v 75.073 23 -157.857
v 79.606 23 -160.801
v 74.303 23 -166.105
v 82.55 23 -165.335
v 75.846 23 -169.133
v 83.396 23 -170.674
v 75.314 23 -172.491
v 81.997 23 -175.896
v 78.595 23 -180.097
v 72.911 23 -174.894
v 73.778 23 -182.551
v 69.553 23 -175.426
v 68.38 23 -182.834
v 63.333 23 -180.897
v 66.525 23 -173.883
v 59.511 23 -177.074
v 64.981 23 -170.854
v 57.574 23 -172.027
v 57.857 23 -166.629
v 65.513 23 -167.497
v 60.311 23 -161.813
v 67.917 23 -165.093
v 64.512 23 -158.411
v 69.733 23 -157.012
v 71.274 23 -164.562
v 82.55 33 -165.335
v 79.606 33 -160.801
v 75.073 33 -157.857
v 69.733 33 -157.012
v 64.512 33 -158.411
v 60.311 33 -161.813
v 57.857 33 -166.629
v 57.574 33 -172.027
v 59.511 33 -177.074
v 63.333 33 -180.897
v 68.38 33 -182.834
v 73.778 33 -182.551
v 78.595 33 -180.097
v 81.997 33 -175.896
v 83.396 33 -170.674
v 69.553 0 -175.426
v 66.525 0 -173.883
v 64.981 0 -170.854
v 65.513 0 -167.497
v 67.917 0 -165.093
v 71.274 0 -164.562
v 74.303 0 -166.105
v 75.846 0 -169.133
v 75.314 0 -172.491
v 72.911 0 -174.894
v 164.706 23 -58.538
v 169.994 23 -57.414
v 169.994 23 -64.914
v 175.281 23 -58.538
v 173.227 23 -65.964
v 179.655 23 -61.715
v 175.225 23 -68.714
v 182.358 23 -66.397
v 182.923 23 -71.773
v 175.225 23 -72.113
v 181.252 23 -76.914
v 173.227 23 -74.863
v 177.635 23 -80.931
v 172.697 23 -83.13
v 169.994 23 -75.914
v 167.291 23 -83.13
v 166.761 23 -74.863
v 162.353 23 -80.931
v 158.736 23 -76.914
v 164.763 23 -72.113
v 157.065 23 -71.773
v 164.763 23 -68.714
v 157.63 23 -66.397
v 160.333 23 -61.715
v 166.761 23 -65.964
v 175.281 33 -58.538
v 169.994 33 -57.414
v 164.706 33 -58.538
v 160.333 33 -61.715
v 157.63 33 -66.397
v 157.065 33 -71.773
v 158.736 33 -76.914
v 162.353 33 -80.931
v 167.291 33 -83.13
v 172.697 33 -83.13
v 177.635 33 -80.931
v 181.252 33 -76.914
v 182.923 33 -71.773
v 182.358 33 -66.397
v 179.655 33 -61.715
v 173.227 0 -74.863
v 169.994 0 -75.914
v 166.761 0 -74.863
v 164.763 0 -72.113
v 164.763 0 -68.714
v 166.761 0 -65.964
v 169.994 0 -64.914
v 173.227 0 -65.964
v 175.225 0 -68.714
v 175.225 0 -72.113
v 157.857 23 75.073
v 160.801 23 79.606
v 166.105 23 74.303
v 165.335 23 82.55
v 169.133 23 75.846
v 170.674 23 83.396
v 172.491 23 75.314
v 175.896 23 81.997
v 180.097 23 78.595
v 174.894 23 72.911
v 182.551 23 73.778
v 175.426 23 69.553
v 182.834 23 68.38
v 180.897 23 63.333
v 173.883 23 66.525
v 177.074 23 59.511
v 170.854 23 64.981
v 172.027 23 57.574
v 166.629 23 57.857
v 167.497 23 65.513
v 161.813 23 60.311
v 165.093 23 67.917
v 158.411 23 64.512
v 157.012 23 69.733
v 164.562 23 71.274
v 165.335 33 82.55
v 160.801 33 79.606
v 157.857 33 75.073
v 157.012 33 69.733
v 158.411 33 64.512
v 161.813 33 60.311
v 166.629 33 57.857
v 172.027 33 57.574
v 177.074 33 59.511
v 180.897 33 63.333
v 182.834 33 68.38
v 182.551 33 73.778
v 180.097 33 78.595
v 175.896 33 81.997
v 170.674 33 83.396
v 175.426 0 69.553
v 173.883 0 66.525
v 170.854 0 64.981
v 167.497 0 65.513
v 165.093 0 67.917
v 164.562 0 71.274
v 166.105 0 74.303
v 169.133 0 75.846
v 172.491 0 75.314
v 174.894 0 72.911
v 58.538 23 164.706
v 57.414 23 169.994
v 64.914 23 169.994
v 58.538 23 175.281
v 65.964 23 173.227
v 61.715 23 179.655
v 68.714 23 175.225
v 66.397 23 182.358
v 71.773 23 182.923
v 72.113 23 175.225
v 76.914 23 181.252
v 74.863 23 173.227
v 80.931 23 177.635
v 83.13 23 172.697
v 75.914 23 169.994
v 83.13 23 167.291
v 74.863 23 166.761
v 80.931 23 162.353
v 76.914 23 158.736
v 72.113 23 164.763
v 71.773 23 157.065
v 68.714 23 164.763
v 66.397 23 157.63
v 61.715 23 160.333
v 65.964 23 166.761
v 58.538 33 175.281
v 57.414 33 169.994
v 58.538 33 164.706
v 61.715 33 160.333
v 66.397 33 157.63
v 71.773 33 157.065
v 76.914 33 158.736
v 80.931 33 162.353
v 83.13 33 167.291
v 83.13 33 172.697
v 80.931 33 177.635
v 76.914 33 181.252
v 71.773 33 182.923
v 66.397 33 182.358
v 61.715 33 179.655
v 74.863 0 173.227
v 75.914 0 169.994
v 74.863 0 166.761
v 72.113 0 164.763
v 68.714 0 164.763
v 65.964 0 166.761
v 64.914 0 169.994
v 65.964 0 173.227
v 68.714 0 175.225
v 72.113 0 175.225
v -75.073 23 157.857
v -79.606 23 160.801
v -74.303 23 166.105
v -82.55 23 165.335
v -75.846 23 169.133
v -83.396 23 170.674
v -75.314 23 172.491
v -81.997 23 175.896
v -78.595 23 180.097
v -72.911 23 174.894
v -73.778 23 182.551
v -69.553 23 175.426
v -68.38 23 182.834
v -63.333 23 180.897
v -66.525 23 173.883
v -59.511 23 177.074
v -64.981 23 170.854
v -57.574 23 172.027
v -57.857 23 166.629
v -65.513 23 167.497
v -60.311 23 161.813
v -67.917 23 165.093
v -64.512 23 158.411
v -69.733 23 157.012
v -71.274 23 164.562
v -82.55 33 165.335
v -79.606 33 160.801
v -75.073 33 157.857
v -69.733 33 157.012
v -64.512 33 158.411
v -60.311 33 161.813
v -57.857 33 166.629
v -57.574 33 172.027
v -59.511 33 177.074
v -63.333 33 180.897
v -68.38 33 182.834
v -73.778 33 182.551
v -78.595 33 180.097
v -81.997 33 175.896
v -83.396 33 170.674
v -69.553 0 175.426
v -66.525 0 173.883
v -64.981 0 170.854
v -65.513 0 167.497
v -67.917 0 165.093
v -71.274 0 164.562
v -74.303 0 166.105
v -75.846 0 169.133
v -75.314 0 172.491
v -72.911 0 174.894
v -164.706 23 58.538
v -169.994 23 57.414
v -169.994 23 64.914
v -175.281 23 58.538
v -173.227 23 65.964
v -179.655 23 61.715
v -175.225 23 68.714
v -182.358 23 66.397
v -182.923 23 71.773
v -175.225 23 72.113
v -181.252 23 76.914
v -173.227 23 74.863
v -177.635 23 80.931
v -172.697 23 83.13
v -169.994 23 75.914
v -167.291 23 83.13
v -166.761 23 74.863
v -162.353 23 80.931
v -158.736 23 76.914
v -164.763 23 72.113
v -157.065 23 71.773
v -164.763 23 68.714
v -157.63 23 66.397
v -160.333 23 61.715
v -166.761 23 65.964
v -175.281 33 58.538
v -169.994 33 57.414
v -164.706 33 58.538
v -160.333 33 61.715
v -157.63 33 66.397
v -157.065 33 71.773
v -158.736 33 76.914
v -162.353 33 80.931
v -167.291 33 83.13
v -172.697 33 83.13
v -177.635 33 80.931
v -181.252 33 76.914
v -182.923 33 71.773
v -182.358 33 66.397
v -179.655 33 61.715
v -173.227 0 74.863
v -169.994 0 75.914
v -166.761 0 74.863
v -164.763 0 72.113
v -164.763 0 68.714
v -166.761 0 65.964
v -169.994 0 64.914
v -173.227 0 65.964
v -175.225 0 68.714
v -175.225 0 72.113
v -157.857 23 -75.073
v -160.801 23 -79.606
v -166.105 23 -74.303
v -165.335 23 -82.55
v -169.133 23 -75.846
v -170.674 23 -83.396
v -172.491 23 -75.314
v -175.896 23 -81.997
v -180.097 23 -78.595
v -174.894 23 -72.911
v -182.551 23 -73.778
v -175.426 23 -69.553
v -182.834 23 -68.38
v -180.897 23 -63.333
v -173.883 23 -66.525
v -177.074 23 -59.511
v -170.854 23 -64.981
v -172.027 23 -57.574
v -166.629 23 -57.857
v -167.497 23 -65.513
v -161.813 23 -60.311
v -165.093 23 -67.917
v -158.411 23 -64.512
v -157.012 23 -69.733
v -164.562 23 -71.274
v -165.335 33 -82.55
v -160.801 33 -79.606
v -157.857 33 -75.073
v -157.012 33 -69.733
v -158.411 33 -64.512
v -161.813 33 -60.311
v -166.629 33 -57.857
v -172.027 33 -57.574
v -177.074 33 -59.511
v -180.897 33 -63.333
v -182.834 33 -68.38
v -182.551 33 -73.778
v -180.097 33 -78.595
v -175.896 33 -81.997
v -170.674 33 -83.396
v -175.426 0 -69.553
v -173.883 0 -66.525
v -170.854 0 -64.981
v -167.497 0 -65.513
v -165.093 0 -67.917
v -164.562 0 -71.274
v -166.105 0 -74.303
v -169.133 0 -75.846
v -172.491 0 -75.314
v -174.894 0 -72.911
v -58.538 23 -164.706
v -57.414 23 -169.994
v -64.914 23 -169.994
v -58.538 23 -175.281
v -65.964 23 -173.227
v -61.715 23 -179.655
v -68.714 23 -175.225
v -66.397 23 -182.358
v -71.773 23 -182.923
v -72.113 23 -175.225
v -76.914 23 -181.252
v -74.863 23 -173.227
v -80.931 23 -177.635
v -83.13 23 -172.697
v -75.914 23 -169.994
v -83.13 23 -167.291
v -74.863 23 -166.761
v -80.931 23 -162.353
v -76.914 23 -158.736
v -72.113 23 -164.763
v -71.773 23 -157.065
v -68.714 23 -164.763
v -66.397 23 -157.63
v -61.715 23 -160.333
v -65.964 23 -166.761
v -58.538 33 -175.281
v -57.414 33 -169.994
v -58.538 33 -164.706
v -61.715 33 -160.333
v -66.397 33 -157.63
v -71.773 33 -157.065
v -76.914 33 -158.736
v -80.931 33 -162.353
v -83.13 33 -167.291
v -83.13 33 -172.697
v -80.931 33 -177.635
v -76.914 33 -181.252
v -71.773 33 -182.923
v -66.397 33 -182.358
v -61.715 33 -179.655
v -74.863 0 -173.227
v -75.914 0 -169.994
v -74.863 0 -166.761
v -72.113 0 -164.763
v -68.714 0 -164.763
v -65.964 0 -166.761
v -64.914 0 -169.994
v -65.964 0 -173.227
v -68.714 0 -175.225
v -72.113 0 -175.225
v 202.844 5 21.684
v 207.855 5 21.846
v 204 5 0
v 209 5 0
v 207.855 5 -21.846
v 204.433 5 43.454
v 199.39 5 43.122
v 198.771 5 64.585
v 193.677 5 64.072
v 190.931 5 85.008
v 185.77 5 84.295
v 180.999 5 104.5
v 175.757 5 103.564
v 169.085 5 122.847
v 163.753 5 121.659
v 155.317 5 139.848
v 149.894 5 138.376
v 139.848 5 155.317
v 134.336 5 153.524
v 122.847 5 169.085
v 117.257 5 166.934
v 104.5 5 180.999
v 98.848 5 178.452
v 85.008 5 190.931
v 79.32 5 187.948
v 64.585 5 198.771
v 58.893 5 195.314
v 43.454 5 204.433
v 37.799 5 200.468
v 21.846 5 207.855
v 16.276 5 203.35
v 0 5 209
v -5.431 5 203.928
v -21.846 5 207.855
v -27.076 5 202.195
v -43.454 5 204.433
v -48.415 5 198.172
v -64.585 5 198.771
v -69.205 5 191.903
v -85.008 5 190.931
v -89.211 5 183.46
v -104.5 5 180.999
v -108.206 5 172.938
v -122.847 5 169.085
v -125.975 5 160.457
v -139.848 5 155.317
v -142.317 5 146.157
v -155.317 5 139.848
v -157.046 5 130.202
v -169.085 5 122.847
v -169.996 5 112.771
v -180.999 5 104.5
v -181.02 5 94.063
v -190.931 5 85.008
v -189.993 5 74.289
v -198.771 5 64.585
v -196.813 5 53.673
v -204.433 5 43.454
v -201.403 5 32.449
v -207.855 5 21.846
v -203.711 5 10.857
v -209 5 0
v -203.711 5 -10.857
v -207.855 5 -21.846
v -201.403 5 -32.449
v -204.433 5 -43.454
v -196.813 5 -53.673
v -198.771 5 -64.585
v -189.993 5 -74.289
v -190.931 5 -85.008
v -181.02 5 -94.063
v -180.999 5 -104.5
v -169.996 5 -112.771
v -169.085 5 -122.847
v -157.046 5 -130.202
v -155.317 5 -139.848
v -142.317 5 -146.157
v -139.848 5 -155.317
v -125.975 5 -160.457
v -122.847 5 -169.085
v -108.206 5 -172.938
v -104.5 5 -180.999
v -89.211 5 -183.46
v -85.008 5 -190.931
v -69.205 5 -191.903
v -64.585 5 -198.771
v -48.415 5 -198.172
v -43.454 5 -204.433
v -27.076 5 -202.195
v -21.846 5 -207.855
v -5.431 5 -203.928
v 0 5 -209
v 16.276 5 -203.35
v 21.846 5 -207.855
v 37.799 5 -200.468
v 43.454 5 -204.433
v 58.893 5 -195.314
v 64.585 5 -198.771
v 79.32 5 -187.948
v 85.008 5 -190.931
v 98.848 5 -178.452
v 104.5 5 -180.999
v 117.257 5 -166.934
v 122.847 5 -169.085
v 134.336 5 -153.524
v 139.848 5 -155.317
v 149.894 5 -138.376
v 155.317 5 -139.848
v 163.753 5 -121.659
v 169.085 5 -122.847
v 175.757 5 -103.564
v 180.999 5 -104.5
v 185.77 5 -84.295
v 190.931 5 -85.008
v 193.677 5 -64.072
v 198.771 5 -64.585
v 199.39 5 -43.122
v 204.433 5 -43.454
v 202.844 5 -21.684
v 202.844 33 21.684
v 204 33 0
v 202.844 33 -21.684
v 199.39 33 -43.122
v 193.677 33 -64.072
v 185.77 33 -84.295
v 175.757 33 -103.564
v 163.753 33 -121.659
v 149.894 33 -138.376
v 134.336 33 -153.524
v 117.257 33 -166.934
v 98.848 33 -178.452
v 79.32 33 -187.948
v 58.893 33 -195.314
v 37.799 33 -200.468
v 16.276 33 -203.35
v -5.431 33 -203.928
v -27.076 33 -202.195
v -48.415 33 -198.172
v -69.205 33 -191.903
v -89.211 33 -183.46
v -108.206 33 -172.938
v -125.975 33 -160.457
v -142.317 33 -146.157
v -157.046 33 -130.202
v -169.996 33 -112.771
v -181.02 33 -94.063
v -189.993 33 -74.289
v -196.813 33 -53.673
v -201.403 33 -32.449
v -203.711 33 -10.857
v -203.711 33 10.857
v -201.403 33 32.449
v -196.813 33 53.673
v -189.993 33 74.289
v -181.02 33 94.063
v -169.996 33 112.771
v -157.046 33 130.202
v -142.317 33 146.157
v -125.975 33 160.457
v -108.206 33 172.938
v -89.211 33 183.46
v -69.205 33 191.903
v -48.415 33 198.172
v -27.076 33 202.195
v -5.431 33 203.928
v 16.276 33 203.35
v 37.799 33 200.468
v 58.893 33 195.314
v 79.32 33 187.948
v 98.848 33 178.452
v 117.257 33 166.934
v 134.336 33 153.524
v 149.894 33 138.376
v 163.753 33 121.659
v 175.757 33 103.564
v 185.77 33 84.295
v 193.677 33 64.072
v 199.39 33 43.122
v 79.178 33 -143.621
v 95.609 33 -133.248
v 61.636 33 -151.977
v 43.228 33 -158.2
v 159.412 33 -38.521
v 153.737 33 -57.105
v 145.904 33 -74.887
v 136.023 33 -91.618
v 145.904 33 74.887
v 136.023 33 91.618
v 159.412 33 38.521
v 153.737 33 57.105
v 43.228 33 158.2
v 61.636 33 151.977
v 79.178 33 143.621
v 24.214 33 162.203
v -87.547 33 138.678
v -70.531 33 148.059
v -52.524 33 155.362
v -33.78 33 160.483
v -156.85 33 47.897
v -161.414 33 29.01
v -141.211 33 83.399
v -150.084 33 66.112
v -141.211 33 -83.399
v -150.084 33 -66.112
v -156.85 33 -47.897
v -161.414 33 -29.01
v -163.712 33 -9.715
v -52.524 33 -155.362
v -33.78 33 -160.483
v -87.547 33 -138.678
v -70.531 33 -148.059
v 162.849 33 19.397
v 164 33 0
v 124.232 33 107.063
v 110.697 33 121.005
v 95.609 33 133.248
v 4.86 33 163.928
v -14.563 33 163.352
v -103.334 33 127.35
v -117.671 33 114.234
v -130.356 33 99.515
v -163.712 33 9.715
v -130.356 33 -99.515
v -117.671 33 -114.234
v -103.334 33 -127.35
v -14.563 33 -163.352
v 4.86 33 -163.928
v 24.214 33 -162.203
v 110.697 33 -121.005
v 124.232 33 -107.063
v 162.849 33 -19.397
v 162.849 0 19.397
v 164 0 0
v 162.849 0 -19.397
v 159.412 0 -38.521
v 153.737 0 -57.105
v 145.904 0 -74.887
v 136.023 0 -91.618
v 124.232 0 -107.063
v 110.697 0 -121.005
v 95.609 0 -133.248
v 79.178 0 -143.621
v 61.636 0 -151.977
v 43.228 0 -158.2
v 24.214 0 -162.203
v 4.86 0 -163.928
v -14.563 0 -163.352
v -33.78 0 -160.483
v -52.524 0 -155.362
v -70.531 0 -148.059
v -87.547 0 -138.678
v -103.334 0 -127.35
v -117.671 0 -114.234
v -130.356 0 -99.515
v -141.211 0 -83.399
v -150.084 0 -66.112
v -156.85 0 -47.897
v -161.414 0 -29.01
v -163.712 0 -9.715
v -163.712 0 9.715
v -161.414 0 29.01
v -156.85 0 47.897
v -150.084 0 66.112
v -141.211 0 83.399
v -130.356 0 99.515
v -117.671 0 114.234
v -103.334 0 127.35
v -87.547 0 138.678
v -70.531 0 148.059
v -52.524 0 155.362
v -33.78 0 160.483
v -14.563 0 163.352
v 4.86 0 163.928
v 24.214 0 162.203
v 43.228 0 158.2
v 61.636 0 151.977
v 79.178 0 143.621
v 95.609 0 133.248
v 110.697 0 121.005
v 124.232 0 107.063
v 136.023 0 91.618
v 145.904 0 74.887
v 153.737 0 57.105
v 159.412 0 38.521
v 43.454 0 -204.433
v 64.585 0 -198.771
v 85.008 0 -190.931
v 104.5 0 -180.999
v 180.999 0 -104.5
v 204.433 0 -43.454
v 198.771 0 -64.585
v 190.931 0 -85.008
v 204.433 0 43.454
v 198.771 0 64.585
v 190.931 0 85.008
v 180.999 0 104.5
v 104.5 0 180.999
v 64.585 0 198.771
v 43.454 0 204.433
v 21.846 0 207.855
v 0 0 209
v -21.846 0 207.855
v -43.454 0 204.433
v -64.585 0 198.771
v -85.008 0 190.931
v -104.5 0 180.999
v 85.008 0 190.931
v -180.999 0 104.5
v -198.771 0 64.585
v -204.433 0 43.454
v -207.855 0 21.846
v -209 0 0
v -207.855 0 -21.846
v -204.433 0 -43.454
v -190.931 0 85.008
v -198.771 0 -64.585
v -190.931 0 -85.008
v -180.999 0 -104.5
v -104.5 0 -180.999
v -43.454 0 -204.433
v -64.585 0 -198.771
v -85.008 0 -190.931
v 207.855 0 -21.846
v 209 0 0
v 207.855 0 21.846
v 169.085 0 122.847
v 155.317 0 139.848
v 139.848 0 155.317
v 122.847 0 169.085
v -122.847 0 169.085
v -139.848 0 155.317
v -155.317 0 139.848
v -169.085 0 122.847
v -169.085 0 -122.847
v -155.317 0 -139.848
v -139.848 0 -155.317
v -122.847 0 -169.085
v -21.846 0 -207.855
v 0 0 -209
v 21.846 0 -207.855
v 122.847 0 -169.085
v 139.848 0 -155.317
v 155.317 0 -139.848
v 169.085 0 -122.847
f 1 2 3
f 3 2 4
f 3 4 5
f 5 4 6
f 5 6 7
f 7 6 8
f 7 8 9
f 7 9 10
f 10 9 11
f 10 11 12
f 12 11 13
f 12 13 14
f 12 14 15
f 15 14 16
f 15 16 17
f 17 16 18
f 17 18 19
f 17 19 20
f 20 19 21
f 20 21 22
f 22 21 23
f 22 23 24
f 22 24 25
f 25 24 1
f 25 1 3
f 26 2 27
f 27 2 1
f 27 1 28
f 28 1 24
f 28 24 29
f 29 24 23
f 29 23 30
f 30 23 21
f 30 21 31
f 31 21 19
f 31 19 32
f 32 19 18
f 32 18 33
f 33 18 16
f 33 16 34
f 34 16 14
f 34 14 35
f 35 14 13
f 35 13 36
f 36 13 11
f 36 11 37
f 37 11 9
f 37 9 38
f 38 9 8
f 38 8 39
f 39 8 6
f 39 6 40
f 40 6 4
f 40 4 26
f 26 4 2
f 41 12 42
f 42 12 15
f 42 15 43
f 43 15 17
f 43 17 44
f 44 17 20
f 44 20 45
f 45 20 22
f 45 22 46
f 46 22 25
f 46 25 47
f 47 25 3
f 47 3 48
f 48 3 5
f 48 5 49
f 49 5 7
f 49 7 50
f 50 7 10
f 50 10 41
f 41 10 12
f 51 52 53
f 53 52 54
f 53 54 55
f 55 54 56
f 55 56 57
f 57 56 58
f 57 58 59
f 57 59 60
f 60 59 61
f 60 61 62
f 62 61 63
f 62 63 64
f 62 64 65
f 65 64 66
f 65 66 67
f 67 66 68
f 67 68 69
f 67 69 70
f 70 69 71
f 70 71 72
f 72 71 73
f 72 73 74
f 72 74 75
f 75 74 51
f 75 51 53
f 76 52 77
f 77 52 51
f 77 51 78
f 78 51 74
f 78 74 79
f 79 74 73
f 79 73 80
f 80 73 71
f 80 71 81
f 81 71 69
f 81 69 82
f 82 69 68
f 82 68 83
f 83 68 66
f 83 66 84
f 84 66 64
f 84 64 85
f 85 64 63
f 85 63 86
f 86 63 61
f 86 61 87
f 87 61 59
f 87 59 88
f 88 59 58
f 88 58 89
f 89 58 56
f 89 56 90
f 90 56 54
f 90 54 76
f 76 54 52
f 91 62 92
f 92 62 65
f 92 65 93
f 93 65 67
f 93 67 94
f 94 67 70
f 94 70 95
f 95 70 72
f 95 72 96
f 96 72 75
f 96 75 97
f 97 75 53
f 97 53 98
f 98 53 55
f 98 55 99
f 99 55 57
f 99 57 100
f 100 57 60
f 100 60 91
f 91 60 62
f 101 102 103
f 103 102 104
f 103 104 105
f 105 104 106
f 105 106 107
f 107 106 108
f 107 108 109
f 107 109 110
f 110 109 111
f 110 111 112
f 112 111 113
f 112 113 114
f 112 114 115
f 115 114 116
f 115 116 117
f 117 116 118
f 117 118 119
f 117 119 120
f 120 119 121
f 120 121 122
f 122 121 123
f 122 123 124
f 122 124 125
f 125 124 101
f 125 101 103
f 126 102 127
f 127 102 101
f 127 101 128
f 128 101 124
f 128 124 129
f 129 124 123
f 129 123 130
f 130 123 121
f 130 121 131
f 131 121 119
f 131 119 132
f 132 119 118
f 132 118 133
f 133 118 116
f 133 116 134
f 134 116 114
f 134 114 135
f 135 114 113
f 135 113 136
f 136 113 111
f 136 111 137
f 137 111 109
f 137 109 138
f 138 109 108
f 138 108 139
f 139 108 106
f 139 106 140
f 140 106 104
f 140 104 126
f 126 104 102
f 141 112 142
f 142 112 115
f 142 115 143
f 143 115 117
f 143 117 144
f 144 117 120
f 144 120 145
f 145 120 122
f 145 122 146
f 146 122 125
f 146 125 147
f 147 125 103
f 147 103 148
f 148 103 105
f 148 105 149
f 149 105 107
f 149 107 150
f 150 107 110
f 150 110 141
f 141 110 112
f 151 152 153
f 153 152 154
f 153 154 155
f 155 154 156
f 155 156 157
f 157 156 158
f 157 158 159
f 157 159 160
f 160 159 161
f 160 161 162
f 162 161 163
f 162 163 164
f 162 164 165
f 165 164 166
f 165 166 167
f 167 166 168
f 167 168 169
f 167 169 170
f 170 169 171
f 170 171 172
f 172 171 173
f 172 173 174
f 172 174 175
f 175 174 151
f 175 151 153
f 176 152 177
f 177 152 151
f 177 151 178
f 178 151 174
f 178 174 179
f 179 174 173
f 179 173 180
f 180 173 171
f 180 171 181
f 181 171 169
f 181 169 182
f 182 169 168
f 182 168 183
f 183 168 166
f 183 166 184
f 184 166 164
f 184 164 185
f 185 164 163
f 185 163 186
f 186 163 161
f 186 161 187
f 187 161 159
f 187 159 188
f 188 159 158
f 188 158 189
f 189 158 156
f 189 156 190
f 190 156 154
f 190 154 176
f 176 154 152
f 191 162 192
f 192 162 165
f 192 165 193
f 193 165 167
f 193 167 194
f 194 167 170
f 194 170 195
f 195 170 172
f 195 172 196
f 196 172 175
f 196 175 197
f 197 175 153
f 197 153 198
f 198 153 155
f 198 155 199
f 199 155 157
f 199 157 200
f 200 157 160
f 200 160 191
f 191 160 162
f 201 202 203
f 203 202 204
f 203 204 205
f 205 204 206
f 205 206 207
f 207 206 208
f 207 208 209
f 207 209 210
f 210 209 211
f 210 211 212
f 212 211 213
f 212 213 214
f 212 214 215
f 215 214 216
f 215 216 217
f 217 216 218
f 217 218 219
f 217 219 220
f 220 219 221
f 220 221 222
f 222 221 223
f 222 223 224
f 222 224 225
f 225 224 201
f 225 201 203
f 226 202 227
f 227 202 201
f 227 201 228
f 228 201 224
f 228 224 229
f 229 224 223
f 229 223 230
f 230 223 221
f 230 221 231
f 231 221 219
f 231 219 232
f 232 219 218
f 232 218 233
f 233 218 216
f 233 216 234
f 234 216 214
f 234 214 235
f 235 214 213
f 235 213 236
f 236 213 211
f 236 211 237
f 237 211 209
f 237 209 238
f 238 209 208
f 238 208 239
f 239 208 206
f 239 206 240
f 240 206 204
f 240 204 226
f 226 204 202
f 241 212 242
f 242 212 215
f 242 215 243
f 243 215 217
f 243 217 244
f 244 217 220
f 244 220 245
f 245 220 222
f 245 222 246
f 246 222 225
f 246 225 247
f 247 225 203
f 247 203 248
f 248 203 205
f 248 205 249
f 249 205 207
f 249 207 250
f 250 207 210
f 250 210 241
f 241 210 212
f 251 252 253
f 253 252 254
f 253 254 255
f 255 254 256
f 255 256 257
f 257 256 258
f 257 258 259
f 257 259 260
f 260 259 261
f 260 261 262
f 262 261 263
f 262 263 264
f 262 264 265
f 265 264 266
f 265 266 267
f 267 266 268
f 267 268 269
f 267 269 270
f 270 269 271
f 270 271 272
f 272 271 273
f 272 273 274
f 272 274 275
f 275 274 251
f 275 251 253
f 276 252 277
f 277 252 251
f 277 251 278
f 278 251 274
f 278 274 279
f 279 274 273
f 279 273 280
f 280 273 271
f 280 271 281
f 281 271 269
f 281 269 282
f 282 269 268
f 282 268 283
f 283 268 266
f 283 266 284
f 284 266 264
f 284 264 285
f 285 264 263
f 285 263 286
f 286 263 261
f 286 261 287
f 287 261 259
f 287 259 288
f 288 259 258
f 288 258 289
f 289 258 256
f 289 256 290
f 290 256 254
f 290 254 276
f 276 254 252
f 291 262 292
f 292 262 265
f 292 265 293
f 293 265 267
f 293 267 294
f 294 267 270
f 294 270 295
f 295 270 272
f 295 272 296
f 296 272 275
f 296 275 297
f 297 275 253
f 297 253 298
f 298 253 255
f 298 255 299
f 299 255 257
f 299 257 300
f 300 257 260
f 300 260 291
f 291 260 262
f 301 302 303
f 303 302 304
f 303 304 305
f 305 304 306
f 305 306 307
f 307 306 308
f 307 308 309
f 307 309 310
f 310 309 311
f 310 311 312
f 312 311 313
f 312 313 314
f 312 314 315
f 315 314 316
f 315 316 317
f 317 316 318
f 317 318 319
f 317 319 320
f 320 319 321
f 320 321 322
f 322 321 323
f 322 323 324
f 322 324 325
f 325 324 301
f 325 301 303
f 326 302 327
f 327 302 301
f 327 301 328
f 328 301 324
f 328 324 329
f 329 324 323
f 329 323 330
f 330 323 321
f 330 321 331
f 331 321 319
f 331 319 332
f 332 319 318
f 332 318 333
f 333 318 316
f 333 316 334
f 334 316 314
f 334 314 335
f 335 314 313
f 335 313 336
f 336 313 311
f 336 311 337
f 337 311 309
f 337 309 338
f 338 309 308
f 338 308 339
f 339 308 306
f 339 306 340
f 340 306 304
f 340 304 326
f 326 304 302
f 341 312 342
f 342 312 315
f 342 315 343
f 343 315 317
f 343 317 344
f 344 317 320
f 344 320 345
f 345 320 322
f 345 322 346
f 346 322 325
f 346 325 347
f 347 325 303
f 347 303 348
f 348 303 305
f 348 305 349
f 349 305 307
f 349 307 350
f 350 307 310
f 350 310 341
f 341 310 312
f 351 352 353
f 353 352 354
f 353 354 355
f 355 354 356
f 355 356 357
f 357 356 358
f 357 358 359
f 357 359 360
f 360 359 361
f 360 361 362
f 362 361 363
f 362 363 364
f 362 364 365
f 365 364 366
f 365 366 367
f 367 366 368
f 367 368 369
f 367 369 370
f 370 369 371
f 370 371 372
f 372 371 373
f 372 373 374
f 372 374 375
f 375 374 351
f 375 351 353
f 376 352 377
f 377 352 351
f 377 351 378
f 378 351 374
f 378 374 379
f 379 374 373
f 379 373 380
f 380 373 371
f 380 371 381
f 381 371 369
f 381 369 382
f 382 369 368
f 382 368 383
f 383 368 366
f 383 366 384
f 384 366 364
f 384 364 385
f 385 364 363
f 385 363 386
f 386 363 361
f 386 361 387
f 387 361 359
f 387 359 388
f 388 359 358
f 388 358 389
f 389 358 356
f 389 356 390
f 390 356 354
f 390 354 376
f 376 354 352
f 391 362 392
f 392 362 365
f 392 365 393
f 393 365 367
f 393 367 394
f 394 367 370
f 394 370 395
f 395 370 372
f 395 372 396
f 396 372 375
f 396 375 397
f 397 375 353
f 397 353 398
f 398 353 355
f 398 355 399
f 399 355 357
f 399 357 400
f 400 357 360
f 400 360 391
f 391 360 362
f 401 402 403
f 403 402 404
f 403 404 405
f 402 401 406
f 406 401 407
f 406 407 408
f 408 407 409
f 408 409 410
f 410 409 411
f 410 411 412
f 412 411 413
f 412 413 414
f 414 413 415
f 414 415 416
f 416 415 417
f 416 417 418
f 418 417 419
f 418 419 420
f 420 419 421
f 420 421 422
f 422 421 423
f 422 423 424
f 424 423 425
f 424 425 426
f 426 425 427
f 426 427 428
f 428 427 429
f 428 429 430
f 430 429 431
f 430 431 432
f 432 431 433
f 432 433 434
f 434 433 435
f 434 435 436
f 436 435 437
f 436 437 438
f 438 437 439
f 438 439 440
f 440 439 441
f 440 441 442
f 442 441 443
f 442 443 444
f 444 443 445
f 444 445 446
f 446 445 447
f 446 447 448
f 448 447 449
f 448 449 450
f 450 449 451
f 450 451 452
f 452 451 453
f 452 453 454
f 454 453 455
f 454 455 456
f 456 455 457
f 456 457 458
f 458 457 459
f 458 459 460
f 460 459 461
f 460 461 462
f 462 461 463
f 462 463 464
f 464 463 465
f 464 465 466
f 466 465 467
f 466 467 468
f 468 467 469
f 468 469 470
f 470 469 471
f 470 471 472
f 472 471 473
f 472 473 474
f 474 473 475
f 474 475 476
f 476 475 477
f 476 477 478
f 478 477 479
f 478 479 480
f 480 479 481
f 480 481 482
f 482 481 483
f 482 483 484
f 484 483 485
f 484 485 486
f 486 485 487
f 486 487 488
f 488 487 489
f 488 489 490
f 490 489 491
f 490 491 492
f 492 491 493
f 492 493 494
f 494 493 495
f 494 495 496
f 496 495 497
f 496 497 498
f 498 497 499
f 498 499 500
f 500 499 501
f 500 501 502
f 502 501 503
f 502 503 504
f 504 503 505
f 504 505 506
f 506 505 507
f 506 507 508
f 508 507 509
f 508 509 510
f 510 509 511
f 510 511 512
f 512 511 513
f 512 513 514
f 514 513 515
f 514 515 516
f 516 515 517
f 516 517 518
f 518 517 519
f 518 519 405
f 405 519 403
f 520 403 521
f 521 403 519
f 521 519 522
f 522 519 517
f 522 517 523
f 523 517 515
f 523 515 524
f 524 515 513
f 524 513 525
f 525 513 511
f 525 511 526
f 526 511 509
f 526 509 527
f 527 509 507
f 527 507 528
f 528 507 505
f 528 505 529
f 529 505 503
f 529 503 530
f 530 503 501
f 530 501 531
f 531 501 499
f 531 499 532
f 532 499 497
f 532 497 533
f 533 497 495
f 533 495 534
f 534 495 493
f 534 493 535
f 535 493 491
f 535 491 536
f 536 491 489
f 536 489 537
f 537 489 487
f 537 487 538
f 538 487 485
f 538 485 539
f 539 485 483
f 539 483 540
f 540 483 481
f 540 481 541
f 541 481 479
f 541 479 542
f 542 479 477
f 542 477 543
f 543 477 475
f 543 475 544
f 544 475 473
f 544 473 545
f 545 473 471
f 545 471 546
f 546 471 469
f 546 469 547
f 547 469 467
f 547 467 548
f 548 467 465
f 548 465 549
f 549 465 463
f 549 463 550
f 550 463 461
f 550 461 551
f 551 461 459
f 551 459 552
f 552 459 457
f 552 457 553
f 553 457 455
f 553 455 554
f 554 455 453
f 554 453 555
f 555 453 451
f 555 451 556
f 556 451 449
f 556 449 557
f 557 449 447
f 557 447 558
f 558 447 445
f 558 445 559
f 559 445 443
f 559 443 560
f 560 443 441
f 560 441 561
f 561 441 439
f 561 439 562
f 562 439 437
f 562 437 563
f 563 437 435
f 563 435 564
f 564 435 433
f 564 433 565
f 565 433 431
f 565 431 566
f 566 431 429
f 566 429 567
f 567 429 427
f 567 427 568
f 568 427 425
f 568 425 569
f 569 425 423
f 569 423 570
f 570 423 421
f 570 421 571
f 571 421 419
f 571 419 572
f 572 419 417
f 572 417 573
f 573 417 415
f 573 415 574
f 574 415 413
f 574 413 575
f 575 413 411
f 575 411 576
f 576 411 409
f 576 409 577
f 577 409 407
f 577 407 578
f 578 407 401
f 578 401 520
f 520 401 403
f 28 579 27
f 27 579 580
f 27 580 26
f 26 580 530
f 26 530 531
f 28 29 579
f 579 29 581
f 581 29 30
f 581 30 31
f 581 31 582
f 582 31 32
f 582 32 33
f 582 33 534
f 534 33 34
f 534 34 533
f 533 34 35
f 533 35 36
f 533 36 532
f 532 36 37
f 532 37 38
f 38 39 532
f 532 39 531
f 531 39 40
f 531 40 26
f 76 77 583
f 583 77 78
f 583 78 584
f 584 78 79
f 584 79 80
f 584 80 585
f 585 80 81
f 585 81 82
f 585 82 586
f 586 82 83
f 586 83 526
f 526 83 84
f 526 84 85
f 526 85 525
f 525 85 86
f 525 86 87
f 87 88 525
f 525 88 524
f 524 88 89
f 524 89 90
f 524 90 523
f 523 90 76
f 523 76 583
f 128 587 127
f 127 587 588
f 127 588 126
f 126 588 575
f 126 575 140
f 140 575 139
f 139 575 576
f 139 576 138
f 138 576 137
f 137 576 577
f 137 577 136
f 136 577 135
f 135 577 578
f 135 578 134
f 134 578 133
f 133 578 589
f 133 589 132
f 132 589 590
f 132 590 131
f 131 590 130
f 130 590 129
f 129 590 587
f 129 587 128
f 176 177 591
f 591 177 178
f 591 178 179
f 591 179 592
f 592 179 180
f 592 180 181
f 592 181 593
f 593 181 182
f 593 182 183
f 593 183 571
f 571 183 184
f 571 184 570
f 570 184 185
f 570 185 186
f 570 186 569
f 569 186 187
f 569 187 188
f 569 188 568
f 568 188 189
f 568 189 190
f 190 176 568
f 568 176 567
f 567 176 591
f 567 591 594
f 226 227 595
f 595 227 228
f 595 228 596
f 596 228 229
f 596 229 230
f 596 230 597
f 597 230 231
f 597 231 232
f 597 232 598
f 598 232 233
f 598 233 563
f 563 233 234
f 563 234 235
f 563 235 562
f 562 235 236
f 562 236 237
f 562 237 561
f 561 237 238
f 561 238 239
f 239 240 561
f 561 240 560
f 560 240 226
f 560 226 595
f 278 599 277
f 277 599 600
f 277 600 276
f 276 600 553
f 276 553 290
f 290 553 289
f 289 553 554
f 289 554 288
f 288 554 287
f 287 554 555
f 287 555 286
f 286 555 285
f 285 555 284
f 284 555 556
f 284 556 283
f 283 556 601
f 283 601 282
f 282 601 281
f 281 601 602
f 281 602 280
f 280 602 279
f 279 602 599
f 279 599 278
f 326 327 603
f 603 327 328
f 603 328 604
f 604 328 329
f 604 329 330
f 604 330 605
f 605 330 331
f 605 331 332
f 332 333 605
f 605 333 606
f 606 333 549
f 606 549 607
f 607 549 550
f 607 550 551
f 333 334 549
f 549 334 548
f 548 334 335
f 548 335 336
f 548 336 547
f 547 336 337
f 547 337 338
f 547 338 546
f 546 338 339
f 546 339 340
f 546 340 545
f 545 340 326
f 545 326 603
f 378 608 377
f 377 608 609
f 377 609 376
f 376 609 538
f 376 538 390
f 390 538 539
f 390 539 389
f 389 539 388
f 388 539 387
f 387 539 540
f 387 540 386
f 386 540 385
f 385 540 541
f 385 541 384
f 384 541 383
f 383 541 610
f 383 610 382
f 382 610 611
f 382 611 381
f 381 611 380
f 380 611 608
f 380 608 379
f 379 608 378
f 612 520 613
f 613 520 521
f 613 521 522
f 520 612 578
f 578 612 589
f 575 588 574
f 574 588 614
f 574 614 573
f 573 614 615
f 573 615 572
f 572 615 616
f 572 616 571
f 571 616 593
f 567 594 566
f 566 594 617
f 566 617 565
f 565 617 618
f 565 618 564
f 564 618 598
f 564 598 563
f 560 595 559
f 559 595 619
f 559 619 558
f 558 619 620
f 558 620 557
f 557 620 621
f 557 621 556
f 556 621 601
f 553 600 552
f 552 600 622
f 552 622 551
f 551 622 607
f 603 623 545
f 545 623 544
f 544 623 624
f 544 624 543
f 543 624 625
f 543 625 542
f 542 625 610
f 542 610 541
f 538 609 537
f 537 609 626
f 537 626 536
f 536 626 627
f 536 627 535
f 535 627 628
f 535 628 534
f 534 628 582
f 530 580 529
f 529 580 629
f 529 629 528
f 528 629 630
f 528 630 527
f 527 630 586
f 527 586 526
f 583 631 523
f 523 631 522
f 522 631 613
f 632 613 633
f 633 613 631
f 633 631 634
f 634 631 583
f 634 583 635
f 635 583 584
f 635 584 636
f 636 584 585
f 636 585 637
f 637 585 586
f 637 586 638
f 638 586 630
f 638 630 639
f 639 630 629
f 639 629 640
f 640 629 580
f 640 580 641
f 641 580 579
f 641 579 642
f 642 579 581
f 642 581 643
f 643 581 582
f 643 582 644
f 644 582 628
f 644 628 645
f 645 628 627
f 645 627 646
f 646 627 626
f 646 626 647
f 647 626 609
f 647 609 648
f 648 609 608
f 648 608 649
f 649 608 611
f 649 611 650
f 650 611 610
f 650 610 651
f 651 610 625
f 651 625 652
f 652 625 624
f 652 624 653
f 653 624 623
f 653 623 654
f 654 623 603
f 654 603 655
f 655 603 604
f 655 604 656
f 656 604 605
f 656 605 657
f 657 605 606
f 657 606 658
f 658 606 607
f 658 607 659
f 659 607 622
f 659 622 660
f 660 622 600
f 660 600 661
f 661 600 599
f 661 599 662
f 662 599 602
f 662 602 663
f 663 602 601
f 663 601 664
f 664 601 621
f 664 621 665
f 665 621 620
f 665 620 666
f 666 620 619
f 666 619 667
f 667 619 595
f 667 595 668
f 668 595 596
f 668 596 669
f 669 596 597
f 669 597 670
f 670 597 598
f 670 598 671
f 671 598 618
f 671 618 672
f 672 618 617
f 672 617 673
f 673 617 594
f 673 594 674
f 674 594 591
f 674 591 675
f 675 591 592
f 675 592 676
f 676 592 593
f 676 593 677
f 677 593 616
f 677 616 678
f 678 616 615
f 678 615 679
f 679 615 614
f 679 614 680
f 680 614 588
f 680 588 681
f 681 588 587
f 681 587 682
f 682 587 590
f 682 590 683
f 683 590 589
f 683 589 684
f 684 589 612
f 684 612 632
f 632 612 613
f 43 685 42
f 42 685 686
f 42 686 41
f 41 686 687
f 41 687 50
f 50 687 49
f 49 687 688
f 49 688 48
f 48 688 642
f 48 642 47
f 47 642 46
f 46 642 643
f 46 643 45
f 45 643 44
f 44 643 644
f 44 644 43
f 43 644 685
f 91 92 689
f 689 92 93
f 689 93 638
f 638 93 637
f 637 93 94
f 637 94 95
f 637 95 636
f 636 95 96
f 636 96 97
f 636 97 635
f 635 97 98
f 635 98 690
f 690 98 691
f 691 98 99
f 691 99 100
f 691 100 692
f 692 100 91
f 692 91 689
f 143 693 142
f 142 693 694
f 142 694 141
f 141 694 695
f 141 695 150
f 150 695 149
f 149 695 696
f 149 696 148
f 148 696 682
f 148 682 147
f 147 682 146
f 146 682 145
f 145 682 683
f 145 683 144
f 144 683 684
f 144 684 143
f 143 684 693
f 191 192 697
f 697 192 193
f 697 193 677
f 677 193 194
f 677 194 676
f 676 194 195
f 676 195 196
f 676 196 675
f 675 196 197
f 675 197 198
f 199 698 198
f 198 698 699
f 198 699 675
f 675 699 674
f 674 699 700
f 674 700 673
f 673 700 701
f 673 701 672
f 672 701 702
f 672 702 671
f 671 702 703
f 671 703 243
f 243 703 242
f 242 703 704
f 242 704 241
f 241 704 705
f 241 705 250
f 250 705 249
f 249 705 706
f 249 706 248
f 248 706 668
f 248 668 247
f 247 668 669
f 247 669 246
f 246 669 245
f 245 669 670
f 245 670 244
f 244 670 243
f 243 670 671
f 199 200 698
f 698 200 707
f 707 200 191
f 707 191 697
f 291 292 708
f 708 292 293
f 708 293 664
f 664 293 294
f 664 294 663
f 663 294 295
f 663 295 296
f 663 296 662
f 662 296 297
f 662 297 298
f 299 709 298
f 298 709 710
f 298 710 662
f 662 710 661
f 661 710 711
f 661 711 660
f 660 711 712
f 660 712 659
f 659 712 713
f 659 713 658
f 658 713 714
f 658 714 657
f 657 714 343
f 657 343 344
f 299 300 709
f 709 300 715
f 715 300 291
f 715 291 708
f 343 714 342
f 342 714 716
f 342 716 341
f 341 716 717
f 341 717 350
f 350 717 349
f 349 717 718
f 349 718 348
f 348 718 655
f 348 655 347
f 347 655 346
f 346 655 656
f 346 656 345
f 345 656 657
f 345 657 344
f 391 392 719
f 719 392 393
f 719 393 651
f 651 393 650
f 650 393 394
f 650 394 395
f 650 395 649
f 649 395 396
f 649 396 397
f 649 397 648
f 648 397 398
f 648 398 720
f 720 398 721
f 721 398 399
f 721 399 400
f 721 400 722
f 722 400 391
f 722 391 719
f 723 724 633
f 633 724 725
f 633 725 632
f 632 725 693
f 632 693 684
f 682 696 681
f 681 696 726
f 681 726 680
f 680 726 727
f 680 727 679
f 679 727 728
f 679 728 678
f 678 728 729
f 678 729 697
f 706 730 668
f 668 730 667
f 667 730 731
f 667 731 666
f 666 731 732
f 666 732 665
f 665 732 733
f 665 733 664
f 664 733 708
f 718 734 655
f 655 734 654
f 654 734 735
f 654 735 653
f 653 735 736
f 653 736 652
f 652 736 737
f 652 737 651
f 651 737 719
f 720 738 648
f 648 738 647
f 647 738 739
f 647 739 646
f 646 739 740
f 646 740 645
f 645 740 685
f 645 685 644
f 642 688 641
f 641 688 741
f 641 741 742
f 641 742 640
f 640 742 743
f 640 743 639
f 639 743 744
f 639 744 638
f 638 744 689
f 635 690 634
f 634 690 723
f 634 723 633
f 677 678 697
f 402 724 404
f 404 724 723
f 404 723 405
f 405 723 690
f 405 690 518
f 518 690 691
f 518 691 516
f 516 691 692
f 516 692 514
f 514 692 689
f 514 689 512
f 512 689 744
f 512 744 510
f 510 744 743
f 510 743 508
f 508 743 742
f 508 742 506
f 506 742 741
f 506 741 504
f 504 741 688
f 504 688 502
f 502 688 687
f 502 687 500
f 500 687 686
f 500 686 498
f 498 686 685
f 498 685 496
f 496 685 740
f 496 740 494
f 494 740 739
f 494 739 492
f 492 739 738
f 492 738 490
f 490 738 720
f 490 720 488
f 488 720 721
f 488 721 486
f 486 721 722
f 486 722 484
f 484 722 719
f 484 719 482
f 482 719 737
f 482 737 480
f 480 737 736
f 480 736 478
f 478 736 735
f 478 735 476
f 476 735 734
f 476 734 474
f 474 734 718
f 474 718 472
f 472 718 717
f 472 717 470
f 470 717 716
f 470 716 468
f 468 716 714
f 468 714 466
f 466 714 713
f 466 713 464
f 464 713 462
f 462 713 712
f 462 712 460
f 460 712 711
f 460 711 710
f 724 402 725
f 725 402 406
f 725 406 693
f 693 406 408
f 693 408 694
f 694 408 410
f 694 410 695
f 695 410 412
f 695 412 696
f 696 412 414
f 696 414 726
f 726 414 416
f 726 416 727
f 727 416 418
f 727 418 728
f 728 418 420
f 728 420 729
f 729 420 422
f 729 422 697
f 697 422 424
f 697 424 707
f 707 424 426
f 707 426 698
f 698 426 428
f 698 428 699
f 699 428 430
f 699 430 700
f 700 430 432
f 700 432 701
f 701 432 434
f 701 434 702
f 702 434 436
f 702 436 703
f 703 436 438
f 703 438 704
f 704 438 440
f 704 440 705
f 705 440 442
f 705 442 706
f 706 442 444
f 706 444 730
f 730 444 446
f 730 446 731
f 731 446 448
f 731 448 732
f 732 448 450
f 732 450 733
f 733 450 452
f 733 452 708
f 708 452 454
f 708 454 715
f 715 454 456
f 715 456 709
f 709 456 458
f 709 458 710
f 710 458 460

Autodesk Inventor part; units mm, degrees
ref_plane "YZ Plane" through (0, 0, 0) normal (1, 0, 0) x (0, 1, 0)
ref_plane "XZ Plane" through (0, 0, 0) normal (0, 1, 0) x (-1, 0, 0)
ref_plane "XY Plane" through (0, 0, 0) normal (0, 0, 1) x (1, 0, 0)
sketch "Sketch5" plane through (0, 0, 0) normal (0, 0, 1) x (1, 0, 0)
  line L0 (0, 0) -> (0, 33)
  line L1 (164, 0) -> (164, 33)
  line L2 (164, 33) -> (204, 33)
  line L3 (204, 33) -> (204, 5)
  line L4 (204, 5) -> (209, 5)
  line L5 (209, 5) -> (209, 0)
  line L6 (209, 0) -> (164, 0)
  point P0 (186.5, 0)
  dimension "d16" = 328
  dimension "d17" = 408
  dimension "d19" = 28
  dimension "d20" = 5
  dimension "d21" = 5
revolve "Revolution1" add sketch "Sketch5" angle 360 about axis through (0, 0, 0) along (0, 1, 0)
sketch "Sketch6" plane through (0, 33, 0) normal (0, 1, 0) x (1, 0, 0)
  circle A0 centre (0, 0) radius 184
  line L0 (0, 0) -> (-70.4138, 169.9938)
  line L1 (0, 0) -> (0, 184)
  dimension "d23" = 368
  dimension "d34" = 22.5
hole "Hole1" at (-70.4138, 33, -169.9938) direction (0, -1, 0) diameter 11 end through all counterbore diameter 26 counterbore depth 10
pattern_circular "Circular Pattern2" count 8 over 360 about axis through (0, -10, 0) along (0, 1, 0) of "Hole1"
equation "\"d29\" = Thickness"
equation "\"Thickness\" = 40"
properties part number "DMF 01 32 Барабан Опорное кольцо КОРМА v2.1"
